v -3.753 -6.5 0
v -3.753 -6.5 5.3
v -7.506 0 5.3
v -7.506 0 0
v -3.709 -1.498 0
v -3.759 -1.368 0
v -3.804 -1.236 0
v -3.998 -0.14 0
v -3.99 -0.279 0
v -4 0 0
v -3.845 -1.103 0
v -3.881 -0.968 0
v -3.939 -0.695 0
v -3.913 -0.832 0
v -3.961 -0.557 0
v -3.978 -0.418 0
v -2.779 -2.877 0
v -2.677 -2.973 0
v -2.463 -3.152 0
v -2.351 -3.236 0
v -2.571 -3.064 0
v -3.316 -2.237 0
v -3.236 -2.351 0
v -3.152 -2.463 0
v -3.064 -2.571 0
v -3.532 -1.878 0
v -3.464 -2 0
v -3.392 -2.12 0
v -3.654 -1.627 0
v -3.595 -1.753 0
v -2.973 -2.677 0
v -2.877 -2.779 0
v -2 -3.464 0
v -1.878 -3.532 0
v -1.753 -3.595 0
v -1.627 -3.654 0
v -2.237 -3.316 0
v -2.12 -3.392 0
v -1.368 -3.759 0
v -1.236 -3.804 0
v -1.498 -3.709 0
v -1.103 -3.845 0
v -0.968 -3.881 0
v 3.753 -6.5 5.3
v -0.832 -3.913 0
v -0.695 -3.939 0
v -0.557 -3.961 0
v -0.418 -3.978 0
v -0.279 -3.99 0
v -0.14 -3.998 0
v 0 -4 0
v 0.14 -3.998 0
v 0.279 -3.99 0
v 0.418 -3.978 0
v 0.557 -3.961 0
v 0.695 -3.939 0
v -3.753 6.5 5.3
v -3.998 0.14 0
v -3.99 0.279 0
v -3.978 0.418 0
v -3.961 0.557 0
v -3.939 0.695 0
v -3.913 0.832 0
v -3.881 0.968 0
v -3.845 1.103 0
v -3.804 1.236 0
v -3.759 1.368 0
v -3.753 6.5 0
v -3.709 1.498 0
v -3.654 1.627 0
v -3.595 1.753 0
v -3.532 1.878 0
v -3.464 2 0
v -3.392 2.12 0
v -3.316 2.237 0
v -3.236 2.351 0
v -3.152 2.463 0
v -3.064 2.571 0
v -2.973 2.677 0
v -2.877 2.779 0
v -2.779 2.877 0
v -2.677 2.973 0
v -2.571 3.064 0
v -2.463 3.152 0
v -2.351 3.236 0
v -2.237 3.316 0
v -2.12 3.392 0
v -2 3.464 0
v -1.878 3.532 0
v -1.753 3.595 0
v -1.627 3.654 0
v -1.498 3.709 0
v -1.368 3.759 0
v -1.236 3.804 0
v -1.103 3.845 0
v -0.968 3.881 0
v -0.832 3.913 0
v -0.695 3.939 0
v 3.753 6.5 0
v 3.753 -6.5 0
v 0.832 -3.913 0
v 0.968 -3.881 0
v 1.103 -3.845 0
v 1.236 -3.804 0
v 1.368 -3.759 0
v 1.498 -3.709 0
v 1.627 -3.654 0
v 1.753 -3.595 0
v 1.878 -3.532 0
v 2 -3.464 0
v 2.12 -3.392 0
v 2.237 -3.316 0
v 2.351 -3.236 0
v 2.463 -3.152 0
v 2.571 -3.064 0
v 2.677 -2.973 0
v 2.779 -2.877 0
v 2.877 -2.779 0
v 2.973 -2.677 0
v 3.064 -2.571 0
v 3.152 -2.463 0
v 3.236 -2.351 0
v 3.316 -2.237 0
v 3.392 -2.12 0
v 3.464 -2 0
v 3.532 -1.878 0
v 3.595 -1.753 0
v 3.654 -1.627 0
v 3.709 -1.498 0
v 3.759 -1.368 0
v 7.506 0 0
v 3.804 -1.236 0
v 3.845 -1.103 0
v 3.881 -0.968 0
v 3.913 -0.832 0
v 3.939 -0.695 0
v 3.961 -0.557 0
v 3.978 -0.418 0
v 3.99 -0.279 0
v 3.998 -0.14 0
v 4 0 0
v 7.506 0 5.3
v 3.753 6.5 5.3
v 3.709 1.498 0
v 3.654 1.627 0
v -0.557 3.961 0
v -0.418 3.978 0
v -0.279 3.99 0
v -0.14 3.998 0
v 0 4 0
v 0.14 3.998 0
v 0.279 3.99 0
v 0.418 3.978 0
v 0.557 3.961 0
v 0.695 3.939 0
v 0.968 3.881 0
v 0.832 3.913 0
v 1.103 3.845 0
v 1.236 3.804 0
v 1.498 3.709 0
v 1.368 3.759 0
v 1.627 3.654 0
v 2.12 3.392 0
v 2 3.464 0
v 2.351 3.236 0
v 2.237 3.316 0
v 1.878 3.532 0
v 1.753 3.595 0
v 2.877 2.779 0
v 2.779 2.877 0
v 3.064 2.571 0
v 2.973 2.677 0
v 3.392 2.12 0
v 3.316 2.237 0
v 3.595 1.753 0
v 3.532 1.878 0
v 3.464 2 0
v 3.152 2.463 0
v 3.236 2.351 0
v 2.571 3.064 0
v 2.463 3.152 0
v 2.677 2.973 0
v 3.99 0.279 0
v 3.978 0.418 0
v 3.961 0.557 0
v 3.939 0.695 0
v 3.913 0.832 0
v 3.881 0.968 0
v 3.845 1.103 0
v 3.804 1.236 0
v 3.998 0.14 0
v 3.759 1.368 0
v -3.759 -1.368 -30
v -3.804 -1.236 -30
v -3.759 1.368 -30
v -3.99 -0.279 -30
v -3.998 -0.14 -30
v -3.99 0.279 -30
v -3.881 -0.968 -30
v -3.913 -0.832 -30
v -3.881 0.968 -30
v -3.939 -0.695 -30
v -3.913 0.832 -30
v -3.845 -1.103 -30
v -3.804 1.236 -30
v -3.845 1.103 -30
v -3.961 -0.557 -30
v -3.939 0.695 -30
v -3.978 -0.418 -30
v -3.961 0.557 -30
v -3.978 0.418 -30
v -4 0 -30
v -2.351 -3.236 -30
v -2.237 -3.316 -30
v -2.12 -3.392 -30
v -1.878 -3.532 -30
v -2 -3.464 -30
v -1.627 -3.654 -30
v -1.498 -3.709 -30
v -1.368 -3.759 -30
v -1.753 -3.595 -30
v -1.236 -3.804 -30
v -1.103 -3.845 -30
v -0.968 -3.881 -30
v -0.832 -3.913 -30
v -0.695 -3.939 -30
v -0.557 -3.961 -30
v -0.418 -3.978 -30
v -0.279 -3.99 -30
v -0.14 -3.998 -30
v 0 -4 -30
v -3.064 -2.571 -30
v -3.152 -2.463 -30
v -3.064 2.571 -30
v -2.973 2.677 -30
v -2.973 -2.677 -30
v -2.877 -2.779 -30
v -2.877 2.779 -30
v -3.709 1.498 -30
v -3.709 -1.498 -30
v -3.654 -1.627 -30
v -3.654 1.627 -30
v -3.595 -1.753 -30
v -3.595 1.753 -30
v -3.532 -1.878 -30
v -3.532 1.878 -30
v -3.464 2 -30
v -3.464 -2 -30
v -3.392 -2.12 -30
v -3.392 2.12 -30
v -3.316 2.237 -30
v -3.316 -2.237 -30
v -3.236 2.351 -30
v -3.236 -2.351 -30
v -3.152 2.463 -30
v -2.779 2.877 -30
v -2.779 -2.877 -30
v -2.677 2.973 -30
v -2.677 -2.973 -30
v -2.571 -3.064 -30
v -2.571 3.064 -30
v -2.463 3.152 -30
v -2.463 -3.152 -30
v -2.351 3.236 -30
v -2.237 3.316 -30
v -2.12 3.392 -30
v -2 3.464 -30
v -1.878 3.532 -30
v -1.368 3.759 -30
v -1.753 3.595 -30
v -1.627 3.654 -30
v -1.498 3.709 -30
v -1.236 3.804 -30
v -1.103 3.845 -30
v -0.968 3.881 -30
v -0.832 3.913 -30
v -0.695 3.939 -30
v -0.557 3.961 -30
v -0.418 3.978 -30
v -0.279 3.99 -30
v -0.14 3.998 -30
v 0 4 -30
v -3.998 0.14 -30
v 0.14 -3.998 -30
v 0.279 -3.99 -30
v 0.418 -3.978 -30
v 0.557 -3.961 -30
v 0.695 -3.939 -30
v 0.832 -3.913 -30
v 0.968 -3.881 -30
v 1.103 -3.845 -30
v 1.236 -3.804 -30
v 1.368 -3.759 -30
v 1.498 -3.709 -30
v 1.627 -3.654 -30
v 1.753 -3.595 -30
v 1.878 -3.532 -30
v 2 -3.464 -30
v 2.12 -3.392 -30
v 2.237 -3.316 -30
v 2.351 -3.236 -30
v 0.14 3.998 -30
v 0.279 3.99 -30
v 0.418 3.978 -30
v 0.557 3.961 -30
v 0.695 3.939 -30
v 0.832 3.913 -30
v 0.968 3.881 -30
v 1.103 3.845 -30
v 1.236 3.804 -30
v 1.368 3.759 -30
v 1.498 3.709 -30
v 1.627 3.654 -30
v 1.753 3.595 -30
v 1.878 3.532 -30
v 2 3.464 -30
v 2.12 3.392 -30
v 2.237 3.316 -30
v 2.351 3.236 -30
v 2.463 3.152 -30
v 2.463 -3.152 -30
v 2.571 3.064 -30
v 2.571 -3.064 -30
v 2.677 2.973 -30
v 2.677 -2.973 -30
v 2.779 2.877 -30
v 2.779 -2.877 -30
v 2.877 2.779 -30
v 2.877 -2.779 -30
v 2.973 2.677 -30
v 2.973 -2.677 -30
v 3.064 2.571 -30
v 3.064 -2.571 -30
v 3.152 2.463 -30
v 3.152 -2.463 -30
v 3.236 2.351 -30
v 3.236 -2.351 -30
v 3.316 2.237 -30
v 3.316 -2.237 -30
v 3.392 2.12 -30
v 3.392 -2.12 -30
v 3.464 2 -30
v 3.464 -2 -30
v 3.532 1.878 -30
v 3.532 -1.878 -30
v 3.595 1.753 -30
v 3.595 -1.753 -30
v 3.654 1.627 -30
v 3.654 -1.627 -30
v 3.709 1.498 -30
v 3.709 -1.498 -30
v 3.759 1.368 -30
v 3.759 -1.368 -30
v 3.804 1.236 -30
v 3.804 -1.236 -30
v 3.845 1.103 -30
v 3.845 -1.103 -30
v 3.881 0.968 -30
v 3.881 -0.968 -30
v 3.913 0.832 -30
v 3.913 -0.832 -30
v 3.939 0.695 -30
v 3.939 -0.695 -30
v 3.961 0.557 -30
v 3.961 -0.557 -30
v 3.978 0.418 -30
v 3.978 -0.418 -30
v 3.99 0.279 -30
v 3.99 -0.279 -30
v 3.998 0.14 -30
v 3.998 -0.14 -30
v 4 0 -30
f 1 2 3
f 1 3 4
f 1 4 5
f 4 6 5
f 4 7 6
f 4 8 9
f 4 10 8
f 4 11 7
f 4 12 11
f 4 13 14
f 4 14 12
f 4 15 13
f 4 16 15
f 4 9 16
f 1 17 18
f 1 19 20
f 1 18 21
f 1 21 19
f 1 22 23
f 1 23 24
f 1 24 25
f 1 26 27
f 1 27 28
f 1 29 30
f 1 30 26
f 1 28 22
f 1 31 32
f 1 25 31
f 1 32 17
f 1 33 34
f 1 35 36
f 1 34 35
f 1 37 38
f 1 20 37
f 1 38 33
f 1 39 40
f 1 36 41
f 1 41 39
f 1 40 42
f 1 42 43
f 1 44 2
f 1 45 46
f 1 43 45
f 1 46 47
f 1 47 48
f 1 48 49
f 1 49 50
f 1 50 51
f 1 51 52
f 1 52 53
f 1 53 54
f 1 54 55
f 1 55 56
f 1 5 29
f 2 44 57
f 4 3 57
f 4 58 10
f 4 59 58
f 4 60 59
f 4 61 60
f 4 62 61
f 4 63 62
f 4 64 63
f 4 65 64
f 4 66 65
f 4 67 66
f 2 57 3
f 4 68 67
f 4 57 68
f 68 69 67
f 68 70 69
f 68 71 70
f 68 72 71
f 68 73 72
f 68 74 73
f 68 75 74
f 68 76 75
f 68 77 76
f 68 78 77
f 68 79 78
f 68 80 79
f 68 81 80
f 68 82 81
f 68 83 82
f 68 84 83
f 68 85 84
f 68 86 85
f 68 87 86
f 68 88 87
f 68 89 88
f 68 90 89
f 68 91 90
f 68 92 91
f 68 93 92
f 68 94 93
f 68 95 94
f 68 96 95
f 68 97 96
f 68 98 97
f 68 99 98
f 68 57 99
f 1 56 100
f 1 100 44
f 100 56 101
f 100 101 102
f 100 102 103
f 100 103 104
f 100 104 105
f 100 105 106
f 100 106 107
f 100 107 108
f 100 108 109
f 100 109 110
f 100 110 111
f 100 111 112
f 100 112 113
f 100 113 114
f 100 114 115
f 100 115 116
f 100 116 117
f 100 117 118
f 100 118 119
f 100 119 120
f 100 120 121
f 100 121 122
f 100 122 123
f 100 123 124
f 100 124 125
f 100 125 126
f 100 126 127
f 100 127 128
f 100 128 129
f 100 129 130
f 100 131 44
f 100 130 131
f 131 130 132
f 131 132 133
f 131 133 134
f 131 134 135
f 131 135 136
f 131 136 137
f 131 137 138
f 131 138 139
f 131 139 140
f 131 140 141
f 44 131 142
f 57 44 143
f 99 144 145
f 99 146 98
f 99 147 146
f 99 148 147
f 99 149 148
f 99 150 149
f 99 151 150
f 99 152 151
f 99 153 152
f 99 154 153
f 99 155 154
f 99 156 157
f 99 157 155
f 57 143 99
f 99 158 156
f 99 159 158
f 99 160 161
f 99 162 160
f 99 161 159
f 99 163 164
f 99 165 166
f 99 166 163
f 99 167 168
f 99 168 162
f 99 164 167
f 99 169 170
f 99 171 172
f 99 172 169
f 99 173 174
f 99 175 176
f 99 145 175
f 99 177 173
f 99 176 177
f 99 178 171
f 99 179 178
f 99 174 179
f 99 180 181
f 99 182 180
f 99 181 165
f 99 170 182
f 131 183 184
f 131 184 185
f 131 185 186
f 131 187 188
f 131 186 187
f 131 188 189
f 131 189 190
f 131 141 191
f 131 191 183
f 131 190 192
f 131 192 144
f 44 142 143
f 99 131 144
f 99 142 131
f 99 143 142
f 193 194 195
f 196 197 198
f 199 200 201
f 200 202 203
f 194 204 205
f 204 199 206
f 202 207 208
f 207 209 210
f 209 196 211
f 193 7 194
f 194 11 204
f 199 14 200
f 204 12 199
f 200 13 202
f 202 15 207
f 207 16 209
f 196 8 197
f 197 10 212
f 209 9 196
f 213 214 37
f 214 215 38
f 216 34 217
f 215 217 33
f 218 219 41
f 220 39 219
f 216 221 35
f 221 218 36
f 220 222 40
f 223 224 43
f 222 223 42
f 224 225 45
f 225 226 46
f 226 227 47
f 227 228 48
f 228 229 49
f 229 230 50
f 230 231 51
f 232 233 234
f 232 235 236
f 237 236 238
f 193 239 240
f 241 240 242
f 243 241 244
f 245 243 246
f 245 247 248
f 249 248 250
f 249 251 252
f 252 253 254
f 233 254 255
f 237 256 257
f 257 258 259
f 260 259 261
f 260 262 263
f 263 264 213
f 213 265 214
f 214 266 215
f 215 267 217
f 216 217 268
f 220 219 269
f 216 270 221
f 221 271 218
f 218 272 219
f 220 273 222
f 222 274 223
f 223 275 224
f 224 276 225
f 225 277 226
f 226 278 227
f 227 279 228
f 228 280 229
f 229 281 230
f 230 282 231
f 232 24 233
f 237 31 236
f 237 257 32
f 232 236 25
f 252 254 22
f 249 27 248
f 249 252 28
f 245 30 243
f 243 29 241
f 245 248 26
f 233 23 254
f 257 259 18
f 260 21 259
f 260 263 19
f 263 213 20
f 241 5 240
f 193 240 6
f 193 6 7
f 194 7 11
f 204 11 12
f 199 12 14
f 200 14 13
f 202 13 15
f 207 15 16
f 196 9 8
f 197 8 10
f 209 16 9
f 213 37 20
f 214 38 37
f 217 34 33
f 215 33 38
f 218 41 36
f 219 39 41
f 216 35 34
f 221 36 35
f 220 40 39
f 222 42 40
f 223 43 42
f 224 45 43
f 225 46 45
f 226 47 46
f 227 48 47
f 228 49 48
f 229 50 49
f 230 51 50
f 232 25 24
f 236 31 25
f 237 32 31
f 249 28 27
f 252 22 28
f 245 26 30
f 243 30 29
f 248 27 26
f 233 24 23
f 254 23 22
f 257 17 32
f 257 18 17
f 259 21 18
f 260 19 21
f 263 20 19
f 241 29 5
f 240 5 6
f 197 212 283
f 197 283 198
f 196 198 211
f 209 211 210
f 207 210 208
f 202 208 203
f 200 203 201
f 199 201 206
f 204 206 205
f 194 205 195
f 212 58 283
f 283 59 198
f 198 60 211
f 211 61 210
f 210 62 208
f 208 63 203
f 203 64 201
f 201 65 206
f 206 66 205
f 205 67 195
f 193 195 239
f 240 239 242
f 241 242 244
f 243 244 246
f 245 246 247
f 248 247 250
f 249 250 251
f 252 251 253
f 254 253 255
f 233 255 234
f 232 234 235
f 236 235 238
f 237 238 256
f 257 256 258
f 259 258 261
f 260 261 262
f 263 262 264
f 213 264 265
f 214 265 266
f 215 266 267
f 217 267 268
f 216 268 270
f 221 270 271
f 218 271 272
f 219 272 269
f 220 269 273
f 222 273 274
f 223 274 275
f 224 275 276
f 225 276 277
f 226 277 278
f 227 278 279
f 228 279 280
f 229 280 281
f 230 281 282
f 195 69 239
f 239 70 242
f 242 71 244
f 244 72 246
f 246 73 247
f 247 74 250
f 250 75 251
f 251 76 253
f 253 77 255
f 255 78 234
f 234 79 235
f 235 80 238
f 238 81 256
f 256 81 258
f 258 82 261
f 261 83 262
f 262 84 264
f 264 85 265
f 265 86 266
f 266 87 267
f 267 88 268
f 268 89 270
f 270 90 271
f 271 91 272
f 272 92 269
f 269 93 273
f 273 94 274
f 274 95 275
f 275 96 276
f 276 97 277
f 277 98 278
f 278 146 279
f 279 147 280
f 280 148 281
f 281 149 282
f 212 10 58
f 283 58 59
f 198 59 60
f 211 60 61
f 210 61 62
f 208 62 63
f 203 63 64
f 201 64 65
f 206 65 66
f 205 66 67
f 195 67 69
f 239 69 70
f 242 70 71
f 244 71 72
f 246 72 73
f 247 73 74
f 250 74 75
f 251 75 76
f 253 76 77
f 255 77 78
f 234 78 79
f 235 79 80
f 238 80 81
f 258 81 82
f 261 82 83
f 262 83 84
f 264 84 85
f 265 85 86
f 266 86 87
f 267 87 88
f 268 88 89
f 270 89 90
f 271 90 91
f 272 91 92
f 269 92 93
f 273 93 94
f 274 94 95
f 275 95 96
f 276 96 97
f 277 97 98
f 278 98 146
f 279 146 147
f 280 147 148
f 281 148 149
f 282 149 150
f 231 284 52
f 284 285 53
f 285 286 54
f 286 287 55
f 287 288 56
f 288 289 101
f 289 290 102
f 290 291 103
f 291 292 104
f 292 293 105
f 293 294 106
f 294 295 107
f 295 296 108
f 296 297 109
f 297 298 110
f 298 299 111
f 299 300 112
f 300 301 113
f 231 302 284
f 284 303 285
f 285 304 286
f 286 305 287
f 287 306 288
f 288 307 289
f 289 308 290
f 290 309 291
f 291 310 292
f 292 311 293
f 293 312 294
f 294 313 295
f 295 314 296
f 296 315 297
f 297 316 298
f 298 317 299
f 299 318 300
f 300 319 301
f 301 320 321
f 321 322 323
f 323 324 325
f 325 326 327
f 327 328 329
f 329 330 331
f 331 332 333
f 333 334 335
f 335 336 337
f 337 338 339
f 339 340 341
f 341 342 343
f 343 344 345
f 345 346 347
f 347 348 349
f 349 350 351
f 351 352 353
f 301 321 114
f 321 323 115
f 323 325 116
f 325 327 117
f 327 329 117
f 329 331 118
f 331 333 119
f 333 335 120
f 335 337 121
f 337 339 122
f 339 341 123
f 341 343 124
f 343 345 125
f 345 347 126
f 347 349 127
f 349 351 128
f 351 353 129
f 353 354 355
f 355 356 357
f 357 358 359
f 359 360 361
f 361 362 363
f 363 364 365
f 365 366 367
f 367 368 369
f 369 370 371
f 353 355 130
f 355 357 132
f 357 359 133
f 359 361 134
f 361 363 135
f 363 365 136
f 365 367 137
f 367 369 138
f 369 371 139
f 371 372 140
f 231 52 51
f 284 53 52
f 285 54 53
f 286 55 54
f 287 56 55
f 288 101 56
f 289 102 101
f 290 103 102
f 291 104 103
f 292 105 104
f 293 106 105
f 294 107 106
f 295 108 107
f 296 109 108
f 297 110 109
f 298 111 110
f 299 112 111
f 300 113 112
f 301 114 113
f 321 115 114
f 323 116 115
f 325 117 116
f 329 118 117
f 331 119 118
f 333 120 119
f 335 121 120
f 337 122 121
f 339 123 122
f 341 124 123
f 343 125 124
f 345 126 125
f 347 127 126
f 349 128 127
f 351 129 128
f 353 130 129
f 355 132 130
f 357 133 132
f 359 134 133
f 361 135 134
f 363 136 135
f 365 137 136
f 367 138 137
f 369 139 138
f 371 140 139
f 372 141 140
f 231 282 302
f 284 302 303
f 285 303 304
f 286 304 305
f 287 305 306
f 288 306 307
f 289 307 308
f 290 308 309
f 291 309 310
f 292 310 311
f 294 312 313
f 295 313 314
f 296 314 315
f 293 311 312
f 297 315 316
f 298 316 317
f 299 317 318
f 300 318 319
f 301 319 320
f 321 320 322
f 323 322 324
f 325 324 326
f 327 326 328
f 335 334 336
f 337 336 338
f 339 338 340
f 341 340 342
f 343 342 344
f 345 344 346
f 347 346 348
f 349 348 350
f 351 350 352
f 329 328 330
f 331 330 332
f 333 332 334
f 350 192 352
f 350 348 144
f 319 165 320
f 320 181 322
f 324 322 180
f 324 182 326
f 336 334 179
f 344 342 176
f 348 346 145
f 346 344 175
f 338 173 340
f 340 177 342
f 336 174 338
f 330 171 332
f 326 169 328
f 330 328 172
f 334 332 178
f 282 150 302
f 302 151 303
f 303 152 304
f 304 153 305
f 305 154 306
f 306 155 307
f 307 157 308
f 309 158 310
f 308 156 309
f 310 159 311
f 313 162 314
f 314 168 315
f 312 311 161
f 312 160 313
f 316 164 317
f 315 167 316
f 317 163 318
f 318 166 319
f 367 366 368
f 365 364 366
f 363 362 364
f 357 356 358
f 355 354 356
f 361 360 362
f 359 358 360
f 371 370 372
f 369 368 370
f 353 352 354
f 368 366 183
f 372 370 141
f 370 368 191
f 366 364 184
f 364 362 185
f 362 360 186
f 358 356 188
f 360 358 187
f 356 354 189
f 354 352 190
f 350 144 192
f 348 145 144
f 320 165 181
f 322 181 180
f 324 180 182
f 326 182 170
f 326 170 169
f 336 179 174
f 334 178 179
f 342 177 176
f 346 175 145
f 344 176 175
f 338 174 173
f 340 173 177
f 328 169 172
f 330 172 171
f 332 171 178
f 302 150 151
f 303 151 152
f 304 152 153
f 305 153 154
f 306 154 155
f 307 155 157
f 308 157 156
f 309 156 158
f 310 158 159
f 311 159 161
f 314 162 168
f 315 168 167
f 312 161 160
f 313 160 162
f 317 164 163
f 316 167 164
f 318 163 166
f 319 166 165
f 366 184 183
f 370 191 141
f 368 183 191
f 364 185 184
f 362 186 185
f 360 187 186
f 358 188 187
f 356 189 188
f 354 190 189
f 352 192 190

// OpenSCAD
// M8 hex bolt (thread omitted)

$fn = 180;

// Parameters
af = 13;      // across-flats of hex head [mm]
h  = 5.3;     // height of hex head [mm]
d  = 8;       // shank diameter [mm]
L  = 30;      // shank length [mm]

// Derived
r = af / (2 * cos(30)); // circumscribed radius from across-flats

module hex_prism(across_flats, height) {
  // Flat-to-flat = across_flats
  // Hexagon in XY plane centered at origin
  cylinder(h=height, r=across_flats / (2 * cos(30)), $fn=6, center=false);
}

// Head bottom at z=0, axis along +Z; shank extends into z<0
union() {
  // Hex head: bottom at z=0, top at z=h
  translate([0, 0, 0])
    cylinder(h=h, r=r, $fn=6);

  // Shank: from z=0 down to z=-L
  translate([0, 0, -L])
    cylinder(h=L, d=d, center=false);
}
